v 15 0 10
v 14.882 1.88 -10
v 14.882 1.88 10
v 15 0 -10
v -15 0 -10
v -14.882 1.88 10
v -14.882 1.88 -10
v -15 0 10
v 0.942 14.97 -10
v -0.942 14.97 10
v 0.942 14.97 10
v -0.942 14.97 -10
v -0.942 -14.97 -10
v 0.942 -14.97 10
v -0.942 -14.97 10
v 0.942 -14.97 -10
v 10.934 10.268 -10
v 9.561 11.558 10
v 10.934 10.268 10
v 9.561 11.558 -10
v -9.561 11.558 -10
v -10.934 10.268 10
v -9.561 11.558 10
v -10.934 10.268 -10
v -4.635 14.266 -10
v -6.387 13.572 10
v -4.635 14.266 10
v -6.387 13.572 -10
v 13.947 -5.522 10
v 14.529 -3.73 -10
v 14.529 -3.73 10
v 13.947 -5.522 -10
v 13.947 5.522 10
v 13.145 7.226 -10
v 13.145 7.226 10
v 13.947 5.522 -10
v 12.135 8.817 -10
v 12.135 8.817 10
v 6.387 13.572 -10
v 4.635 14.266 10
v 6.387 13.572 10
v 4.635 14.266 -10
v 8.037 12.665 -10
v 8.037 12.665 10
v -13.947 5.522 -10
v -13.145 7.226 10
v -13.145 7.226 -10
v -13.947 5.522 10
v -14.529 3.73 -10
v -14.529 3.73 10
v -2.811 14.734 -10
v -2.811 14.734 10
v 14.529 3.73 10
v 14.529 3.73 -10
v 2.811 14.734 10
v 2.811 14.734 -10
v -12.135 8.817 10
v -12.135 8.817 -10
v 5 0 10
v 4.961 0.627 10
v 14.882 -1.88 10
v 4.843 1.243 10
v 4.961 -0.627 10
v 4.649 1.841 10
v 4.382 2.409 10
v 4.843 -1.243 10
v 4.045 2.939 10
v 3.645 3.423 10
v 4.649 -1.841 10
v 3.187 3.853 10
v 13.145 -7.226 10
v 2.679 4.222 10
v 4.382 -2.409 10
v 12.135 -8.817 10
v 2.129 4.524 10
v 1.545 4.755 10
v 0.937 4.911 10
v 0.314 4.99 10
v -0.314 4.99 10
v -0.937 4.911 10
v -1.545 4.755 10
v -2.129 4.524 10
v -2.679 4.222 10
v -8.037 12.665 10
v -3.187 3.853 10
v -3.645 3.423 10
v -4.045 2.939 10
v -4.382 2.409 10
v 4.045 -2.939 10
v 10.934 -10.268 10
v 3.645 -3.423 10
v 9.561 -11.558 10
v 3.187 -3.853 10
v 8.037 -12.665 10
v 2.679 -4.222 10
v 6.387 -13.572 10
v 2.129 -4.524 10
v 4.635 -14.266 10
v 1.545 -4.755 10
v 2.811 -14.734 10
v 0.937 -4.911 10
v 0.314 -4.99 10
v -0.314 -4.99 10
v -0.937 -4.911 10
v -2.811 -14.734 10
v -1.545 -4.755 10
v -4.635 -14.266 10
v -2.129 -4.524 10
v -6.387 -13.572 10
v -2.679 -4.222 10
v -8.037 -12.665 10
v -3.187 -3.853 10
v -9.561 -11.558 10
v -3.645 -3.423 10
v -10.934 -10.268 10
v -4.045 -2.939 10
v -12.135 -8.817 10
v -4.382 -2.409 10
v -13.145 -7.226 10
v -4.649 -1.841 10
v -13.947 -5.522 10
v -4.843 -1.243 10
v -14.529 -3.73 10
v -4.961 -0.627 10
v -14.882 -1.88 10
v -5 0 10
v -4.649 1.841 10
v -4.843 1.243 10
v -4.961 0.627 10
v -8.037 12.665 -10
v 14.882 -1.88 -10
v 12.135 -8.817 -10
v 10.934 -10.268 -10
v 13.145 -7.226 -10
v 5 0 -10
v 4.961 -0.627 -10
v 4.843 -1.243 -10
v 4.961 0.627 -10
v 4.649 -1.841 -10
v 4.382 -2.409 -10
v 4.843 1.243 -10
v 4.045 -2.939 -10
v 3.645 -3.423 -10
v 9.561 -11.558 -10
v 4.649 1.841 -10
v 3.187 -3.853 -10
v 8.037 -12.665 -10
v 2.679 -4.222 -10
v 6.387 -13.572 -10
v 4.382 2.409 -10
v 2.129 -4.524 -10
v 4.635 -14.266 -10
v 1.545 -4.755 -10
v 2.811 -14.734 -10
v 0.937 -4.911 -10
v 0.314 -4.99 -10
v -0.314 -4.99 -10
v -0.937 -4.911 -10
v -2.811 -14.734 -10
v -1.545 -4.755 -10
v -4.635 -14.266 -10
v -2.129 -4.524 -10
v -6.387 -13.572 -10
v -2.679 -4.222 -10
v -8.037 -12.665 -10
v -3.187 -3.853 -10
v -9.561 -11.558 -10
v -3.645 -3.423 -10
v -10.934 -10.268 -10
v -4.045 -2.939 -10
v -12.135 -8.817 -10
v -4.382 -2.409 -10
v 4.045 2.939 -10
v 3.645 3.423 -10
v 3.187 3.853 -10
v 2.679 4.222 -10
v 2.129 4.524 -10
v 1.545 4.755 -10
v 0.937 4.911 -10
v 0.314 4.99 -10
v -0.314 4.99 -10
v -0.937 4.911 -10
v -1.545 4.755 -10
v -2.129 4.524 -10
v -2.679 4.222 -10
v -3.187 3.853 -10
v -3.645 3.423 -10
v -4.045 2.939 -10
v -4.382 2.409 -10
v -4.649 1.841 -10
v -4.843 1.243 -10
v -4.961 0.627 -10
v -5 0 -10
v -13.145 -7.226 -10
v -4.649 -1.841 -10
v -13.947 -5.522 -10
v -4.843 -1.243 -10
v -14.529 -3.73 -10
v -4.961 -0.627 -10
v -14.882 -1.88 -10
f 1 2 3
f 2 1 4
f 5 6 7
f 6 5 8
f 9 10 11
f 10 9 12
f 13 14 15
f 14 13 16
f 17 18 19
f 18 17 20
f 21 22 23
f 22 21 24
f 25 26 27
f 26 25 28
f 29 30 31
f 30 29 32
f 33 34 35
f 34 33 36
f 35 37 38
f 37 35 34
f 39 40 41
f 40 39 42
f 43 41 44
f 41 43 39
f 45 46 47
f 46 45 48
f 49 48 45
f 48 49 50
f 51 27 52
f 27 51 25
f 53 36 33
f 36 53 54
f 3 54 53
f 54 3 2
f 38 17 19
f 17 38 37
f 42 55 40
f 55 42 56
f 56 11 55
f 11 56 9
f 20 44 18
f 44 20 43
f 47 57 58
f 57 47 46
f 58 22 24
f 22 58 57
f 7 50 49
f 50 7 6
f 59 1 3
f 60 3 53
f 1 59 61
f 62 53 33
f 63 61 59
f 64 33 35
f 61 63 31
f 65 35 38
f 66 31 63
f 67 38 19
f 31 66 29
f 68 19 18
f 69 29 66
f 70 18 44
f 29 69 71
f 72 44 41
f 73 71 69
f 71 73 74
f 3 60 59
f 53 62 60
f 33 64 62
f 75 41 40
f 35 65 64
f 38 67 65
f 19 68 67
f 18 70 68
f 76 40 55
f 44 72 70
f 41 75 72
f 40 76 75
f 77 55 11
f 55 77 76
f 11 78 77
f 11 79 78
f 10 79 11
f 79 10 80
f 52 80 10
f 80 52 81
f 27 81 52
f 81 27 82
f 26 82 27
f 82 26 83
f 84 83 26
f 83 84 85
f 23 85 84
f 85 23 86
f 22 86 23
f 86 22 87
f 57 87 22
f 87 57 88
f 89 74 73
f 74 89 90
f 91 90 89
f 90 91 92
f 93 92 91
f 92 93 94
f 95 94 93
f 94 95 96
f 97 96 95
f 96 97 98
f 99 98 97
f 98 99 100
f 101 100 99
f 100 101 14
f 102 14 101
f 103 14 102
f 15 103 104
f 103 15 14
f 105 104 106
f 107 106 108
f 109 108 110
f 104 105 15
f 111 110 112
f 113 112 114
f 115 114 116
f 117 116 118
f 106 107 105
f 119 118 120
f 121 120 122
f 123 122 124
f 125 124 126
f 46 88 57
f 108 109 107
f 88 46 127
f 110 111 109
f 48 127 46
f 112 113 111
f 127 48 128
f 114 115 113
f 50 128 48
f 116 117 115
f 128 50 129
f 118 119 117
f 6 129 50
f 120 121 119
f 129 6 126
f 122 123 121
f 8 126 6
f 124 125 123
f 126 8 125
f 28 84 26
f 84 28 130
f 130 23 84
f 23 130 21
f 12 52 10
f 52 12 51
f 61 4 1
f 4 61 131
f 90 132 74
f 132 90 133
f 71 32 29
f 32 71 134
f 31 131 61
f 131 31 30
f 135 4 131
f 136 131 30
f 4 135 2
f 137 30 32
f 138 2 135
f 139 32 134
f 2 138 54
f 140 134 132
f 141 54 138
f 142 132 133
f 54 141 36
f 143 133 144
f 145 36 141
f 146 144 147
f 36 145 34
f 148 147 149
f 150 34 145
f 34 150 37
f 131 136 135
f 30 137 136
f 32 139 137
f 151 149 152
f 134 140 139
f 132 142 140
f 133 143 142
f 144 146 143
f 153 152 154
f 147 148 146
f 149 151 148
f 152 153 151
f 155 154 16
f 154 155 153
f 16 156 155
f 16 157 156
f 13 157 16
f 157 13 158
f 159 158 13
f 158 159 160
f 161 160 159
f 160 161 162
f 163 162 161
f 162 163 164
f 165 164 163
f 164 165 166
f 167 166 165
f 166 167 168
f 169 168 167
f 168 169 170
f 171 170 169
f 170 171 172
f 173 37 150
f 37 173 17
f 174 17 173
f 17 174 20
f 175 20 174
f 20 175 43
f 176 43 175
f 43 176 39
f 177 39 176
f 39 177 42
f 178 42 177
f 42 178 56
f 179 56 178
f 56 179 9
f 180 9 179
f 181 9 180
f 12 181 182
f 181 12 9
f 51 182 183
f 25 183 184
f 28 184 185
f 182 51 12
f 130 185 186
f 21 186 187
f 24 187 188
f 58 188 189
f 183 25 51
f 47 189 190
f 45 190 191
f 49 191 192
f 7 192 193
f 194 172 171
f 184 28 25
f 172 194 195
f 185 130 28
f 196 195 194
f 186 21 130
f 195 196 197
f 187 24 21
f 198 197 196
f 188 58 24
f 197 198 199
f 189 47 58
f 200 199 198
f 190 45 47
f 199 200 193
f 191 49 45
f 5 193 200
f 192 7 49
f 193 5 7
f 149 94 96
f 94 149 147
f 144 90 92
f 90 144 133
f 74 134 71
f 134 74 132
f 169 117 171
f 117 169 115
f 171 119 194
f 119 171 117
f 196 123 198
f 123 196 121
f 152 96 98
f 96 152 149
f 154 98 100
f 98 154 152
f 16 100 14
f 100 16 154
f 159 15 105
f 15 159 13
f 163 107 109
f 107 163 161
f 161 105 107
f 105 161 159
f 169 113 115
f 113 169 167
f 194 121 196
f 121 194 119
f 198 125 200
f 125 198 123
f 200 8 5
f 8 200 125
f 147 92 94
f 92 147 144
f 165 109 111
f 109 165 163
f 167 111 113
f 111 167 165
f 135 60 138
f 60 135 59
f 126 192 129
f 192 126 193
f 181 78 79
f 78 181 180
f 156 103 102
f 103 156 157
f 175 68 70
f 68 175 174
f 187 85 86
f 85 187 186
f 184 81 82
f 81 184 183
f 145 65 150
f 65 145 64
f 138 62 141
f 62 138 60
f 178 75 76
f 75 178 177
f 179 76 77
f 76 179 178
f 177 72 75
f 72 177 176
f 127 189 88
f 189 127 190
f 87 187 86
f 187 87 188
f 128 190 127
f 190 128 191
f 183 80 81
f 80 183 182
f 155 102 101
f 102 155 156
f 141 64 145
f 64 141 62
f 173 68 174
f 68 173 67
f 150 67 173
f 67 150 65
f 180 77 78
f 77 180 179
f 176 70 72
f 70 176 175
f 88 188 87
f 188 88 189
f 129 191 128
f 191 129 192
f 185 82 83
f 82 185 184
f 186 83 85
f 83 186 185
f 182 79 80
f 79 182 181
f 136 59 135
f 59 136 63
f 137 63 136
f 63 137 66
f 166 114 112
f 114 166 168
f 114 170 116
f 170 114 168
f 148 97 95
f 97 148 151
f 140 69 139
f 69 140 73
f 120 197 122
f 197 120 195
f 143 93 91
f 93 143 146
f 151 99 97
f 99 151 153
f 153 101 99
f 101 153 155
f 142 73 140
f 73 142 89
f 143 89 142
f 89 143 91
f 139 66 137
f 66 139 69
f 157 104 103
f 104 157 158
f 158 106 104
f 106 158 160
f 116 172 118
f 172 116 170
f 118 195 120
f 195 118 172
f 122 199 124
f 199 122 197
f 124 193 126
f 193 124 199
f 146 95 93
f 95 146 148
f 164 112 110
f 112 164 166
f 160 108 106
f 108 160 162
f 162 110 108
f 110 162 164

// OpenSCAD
$fn = 50;


difference() {
	union() {
		translate(v = [0, 0, -10.0000000000]) {
			cylinder(h = 20, r = 15.0000000000);
		}
	}
	union() {
		translate(v = [0, 0, -100.0000000000]) {
			cylinder(h = 200, r = 5.0000000000);
		}
	}
}
